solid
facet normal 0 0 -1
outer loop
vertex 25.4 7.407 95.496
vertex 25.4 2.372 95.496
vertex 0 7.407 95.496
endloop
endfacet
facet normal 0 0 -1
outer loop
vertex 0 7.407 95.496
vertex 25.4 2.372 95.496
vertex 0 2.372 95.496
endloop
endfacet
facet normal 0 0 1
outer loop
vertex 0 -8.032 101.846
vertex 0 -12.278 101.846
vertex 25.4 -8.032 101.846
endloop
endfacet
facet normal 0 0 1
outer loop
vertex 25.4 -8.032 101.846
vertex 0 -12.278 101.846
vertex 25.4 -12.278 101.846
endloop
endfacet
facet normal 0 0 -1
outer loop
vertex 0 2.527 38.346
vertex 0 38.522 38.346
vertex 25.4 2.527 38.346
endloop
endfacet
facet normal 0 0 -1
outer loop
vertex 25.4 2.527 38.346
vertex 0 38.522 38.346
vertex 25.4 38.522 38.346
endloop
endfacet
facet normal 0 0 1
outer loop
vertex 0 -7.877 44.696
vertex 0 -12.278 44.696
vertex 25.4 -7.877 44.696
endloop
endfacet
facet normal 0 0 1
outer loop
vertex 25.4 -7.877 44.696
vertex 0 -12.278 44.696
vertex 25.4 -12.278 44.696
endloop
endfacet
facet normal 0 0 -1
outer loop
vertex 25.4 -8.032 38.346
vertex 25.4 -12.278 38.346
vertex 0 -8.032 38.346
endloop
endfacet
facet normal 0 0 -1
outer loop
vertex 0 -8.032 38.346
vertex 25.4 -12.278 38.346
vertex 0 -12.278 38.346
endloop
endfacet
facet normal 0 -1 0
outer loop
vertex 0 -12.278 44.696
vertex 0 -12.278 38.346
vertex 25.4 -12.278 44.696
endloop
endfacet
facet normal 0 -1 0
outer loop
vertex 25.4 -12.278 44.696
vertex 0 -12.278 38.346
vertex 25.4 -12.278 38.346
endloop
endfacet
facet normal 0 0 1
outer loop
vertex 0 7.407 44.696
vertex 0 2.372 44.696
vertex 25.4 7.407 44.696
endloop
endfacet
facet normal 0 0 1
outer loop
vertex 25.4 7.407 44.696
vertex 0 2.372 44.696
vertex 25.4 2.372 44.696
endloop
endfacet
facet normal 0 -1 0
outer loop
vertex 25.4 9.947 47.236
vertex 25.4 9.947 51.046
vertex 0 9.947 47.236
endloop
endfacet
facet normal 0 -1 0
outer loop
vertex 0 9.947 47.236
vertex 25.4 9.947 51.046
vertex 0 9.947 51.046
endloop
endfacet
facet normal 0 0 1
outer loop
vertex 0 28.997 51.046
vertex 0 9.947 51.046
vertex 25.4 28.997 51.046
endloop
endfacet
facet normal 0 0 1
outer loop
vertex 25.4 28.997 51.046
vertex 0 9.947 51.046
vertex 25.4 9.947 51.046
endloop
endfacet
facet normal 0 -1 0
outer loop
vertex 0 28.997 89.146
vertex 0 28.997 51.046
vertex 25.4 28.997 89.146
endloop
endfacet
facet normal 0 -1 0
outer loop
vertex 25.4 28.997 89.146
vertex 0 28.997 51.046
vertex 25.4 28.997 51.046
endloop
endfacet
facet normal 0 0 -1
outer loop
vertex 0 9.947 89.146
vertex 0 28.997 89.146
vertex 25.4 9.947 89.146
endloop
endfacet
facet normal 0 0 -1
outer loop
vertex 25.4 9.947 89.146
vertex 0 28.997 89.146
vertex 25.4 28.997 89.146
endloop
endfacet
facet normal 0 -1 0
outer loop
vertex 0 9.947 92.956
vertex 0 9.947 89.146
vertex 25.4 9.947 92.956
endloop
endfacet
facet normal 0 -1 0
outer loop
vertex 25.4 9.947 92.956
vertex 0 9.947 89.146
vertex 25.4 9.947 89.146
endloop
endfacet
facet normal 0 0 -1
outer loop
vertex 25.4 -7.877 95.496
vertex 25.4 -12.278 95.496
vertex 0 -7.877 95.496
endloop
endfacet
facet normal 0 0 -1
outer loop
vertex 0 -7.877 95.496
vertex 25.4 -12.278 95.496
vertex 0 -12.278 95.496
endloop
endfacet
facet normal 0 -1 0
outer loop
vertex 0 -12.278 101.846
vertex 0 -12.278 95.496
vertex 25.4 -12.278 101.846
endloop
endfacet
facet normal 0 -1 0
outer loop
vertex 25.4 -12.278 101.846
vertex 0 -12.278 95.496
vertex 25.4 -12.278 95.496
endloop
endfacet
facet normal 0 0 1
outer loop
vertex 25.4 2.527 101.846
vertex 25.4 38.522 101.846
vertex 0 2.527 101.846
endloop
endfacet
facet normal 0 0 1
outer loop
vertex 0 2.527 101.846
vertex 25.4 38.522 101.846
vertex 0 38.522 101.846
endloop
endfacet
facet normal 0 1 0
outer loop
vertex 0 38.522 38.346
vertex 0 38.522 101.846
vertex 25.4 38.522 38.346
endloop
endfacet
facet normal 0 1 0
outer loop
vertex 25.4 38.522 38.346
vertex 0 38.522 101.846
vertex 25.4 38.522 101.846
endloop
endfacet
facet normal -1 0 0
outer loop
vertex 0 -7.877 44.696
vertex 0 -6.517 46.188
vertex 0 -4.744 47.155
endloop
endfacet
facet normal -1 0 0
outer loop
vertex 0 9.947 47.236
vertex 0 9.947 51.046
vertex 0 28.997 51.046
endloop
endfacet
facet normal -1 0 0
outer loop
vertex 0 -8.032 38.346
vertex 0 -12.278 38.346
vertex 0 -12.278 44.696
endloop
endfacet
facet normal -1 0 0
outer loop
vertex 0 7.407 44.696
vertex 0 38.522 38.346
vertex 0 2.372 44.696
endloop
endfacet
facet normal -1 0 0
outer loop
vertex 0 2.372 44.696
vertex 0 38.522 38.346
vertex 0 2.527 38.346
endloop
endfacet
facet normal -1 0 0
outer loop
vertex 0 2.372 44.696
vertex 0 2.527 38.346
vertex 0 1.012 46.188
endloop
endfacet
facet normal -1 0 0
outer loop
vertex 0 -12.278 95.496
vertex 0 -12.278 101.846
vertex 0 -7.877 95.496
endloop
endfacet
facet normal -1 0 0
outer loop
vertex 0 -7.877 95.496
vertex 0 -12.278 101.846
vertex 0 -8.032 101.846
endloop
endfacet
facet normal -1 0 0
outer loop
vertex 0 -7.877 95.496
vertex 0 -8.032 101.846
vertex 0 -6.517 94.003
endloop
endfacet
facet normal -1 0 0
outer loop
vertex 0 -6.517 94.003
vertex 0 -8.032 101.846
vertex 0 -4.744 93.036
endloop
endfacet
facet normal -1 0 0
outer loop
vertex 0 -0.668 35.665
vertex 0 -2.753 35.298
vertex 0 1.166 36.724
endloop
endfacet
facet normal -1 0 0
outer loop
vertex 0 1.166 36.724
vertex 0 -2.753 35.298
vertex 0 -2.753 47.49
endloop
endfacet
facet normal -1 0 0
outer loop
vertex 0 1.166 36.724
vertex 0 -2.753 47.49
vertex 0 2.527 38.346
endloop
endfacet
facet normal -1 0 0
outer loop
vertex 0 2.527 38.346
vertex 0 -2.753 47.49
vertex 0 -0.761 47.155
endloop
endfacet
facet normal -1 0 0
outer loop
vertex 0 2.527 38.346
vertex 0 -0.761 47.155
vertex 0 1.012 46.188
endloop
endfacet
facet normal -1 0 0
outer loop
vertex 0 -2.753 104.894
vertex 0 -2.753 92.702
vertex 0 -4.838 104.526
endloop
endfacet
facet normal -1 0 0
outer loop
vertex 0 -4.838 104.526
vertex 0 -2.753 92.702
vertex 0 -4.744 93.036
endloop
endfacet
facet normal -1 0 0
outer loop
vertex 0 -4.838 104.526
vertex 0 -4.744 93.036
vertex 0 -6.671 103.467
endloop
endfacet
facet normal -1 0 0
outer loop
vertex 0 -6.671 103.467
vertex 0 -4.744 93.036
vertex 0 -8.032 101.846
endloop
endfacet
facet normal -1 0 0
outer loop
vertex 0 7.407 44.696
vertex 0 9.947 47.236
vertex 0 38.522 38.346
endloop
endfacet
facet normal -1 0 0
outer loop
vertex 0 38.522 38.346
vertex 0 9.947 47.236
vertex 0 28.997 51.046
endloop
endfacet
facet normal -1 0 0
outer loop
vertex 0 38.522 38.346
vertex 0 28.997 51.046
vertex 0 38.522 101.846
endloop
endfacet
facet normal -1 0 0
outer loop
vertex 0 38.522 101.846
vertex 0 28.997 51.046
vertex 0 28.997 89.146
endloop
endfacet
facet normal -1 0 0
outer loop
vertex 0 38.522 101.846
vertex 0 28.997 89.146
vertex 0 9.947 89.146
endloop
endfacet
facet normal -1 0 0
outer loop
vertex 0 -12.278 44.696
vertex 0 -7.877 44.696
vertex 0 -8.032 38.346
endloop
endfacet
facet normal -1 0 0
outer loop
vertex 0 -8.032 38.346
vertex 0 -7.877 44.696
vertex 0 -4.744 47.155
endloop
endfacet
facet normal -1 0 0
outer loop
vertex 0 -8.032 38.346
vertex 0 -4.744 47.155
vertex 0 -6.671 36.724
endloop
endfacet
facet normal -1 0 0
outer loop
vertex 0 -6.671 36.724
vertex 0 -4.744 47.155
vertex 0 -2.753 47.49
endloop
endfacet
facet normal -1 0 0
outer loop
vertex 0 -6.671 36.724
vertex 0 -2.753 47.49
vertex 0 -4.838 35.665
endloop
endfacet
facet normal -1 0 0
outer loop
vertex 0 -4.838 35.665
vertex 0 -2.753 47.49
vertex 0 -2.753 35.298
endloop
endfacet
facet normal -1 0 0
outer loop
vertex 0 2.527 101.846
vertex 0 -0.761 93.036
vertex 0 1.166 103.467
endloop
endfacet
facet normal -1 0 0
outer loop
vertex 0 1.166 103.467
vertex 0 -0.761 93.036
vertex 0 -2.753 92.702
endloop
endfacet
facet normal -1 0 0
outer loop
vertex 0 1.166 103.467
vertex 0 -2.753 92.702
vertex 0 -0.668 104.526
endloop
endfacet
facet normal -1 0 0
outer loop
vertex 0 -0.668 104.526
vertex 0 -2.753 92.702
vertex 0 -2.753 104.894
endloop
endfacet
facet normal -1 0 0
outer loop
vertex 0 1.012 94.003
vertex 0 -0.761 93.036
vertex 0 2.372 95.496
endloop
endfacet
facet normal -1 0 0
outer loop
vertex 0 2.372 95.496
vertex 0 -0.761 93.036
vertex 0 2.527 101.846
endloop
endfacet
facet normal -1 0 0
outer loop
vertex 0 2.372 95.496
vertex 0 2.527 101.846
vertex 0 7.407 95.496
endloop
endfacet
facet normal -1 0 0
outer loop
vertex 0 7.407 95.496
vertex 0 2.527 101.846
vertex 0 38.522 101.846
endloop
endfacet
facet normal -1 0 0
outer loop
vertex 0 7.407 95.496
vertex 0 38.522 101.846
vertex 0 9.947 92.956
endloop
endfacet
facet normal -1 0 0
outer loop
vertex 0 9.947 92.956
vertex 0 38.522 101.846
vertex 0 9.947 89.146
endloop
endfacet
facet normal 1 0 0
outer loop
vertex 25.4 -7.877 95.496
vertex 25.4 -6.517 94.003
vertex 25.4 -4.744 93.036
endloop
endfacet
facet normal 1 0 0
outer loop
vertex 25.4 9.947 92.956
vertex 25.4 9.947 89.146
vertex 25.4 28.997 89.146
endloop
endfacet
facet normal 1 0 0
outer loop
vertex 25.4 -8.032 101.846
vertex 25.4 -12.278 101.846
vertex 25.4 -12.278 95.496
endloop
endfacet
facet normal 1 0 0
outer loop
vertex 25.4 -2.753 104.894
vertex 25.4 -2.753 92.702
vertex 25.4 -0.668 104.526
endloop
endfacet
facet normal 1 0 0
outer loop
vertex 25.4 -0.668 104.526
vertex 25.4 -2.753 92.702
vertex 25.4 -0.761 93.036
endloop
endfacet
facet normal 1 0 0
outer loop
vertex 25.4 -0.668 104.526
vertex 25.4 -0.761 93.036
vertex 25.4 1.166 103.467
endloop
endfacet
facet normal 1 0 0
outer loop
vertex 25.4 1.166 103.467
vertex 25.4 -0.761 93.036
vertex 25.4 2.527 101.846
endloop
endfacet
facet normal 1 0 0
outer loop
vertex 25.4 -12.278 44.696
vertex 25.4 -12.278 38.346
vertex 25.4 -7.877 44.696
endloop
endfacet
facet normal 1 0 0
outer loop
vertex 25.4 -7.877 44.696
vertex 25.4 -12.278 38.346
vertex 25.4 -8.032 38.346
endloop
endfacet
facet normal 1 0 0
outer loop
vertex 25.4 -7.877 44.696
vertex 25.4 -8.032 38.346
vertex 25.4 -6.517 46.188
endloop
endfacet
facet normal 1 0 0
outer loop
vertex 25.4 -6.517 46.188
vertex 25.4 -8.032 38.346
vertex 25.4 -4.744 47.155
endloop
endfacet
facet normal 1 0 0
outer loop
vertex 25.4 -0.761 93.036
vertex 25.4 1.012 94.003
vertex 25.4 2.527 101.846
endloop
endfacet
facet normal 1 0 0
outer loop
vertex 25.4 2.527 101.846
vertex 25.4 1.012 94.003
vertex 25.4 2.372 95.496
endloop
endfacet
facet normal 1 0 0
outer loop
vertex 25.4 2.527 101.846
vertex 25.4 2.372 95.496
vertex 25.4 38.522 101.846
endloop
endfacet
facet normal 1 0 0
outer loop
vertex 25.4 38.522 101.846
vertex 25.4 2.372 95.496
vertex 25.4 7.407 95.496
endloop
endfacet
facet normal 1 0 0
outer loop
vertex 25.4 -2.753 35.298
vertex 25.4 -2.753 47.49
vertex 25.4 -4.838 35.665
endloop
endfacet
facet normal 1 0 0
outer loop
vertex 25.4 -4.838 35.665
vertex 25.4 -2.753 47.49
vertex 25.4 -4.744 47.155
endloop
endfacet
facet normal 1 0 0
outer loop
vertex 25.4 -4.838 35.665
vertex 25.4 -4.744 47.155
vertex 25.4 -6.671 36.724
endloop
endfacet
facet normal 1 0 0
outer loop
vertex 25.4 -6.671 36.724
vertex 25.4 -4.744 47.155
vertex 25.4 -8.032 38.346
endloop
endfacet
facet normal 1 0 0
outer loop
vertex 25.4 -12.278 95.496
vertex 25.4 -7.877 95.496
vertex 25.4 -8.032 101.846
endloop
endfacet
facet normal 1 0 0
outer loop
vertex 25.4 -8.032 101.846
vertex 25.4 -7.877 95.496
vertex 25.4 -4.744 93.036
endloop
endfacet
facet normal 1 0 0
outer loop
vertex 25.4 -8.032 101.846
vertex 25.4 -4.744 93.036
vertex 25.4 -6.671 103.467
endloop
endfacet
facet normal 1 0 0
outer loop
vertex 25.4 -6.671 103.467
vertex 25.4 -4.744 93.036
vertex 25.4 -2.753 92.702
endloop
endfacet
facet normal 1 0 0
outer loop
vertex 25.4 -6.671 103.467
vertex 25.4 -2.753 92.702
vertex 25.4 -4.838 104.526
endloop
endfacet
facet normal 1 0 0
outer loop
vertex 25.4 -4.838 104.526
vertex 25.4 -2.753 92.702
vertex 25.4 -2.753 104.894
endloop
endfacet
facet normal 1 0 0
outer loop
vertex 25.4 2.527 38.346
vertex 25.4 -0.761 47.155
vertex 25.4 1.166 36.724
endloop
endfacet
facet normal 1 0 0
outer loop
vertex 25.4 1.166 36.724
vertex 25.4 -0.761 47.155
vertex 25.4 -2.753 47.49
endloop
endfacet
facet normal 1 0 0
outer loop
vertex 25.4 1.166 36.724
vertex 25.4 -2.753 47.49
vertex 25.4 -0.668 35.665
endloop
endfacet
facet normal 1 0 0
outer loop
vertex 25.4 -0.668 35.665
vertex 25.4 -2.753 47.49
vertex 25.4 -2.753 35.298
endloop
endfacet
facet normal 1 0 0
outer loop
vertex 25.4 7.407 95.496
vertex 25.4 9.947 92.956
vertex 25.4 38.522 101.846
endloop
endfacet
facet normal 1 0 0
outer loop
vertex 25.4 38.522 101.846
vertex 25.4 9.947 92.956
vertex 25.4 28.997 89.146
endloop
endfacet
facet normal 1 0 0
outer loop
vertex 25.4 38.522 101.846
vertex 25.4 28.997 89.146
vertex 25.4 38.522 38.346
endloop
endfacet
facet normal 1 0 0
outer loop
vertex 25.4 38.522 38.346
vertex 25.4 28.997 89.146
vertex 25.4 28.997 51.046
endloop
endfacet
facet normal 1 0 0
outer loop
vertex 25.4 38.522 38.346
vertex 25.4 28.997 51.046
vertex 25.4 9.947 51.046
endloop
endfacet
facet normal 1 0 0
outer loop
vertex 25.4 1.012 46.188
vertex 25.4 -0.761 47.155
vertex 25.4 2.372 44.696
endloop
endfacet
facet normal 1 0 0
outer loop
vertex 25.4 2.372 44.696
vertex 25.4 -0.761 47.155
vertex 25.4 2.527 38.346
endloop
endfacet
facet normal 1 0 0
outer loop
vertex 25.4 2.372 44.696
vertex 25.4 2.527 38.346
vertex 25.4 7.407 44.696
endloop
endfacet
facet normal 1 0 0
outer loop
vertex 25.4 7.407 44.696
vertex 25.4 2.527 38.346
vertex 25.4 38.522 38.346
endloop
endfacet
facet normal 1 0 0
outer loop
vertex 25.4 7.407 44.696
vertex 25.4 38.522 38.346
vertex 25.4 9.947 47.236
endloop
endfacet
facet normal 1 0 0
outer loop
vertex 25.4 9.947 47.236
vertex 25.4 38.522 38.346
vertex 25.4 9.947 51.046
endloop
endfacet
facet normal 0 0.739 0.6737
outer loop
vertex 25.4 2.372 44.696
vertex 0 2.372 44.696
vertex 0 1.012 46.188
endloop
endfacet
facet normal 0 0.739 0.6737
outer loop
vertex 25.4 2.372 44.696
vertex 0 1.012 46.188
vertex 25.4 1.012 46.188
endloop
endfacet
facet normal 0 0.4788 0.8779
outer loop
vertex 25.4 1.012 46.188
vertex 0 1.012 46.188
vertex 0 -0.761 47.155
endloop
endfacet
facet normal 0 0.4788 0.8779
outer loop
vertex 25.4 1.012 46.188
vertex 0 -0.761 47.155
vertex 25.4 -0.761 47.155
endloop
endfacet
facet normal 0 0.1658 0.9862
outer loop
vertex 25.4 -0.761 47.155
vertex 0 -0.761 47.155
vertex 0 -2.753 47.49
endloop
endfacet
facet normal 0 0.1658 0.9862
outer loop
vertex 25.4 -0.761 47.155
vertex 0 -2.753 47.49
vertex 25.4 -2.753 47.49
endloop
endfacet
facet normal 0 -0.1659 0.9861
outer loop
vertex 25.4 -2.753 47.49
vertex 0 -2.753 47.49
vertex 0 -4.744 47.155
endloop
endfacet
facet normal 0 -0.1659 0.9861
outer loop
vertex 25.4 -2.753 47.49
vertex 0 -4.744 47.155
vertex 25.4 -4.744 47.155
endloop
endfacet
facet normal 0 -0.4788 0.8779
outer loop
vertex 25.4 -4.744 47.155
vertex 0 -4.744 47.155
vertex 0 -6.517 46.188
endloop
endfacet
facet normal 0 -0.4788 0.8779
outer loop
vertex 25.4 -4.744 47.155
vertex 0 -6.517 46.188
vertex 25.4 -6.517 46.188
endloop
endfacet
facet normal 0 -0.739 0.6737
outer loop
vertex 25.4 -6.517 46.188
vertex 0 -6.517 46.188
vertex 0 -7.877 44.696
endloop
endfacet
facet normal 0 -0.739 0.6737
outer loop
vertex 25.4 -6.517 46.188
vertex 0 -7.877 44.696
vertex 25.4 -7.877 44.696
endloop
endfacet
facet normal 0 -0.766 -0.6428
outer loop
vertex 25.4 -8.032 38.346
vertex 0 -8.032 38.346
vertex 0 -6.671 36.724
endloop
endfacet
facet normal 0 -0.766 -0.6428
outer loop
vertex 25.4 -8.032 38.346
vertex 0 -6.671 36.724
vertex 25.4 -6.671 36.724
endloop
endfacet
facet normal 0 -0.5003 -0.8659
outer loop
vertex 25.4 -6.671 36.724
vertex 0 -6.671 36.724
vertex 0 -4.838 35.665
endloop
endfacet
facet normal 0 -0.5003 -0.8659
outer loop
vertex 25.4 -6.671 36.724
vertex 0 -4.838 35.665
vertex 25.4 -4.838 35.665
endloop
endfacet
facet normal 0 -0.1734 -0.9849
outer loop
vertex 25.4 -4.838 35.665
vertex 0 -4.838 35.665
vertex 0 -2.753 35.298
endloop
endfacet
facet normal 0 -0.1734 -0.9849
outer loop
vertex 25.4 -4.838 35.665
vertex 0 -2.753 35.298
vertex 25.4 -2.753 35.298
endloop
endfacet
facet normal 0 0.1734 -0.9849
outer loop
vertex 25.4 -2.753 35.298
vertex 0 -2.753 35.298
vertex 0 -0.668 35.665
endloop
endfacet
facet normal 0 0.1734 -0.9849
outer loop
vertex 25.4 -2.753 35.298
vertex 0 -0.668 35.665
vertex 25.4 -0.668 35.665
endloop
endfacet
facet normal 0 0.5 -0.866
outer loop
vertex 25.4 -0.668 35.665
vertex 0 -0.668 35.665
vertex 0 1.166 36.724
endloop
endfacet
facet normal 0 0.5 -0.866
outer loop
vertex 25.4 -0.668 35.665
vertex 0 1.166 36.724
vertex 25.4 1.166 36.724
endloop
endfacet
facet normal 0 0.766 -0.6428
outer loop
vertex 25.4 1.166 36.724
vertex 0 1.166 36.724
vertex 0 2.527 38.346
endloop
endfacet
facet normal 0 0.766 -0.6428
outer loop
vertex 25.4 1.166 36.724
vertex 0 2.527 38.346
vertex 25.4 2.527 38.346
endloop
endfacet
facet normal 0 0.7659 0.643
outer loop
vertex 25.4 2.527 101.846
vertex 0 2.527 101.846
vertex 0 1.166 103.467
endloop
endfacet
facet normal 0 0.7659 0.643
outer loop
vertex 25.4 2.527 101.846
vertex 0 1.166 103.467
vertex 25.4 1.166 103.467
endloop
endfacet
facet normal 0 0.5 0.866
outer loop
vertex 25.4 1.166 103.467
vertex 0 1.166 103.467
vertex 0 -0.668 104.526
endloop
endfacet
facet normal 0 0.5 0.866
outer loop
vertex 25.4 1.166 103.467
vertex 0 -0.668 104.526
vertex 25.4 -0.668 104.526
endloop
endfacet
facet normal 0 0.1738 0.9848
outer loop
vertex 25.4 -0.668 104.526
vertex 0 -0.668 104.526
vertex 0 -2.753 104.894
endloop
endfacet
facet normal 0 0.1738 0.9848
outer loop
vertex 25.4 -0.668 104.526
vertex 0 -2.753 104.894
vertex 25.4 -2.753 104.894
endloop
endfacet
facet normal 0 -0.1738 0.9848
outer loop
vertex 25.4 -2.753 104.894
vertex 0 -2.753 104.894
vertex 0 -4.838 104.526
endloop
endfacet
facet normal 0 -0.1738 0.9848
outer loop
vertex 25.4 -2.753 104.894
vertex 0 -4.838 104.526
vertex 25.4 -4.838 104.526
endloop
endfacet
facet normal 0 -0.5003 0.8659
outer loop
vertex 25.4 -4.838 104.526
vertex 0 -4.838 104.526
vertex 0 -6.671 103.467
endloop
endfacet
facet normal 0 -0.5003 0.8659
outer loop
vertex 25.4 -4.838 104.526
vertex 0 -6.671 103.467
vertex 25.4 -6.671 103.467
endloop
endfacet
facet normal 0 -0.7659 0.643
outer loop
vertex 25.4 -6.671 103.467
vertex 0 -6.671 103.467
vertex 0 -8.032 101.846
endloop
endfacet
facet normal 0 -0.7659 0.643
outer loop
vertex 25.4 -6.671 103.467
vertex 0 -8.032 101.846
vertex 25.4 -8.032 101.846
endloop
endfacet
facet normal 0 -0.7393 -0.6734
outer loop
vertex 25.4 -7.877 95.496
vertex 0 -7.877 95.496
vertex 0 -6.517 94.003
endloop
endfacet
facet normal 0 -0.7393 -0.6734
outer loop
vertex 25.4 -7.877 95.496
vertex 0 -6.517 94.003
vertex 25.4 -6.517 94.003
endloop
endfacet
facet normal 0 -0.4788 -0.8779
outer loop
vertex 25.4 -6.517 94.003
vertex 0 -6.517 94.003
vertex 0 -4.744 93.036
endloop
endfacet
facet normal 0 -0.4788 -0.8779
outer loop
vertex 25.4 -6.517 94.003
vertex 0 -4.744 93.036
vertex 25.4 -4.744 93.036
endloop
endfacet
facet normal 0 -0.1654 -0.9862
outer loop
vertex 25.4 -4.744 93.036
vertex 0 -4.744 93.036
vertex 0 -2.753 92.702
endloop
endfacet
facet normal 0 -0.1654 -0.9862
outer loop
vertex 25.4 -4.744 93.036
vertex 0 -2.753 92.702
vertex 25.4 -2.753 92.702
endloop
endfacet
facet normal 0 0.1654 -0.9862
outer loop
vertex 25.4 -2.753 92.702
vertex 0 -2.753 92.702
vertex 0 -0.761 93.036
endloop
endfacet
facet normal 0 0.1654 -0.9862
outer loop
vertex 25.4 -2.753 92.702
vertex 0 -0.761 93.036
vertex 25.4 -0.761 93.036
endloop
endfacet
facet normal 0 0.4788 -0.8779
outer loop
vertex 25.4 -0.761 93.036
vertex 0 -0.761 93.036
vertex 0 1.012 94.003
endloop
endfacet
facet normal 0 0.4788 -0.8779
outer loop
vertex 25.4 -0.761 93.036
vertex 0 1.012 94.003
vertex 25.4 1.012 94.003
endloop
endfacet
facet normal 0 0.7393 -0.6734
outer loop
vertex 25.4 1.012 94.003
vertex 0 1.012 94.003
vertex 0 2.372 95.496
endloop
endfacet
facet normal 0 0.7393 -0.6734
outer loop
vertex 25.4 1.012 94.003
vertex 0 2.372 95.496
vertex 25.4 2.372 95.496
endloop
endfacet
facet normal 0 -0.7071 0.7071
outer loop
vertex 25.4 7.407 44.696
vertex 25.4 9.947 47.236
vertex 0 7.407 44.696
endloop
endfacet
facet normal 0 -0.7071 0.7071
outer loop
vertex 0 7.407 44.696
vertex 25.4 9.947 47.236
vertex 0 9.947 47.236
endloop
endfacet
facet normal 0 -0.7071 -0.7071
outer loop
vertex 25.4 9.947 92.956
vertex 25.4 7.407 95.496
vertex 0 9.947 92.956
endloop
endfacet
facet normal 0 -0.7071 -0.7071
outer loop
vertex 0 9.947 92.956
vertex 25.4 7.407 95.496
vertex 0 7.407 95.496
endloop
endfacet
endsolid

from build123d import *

# Parameters (mm, degrees)
BOSS_EXTRUDE1_DEPTH = 25.4
SKETCH4_R           = 6.096
BOSS_EXTRUDE2_DEPTH = 25.4
CHAMFER1_SIZE       = 2.54


with BuildPart() as part:
    # Sketch3 → Boss-Extrude1 (new body)
    with BuildSketch(Plane(origin=(0, 0, 0), x_dir=(0, 0, -1), z_dir=(1, 0, 0))):
        Polygon((-101.845577666, -12.277652747), (-95.495577666, -12.277652747), (-95.495577666, 9.947347253), (-89.145577666, 9.947347253), (-89.145577666, 28.997347253), (-51.045577666, 28.997347253), (-51.045577666, 9.947347253), (-44.695577666, 9.947347253), (-44.695577666, -12.277652747), (-38.345577666, -12.277652747), (-38.345577666, 38.522347253), (-101.845577666, 38.522347253), align=None)
    extrude(amount=BOSS_EXTRUDE1_DEPTH)

    # Sketch4 → Boss-Extrude2 (add)
    with BuildSketch(Plane(origin=(25.4, 0, 0), x_dir=(0, 0, -1), z_dir=(1, 0, 0))):
        with Locations((-98.797577666, -2.752652747)):
            Circle(SKETCH4_R)
        with Locations((-41.393577666, -2.752652747)):
            Circle(SKETCH4_R)
    extrude(amount=-BOSS_EXTRUDE2_DEPTH)

    # Chamfer1
    chamfer1_edges = [part.edges().sort_by_distance(p)[0] for p in [
        (12.7, 9.947347253, 44.695577666),
        (12.7, 9.947347253, 95.495577666),
    ]]
    chamfer(chamfer1_edges, length=CHAMFER1_SIZE)


solid = part.part
